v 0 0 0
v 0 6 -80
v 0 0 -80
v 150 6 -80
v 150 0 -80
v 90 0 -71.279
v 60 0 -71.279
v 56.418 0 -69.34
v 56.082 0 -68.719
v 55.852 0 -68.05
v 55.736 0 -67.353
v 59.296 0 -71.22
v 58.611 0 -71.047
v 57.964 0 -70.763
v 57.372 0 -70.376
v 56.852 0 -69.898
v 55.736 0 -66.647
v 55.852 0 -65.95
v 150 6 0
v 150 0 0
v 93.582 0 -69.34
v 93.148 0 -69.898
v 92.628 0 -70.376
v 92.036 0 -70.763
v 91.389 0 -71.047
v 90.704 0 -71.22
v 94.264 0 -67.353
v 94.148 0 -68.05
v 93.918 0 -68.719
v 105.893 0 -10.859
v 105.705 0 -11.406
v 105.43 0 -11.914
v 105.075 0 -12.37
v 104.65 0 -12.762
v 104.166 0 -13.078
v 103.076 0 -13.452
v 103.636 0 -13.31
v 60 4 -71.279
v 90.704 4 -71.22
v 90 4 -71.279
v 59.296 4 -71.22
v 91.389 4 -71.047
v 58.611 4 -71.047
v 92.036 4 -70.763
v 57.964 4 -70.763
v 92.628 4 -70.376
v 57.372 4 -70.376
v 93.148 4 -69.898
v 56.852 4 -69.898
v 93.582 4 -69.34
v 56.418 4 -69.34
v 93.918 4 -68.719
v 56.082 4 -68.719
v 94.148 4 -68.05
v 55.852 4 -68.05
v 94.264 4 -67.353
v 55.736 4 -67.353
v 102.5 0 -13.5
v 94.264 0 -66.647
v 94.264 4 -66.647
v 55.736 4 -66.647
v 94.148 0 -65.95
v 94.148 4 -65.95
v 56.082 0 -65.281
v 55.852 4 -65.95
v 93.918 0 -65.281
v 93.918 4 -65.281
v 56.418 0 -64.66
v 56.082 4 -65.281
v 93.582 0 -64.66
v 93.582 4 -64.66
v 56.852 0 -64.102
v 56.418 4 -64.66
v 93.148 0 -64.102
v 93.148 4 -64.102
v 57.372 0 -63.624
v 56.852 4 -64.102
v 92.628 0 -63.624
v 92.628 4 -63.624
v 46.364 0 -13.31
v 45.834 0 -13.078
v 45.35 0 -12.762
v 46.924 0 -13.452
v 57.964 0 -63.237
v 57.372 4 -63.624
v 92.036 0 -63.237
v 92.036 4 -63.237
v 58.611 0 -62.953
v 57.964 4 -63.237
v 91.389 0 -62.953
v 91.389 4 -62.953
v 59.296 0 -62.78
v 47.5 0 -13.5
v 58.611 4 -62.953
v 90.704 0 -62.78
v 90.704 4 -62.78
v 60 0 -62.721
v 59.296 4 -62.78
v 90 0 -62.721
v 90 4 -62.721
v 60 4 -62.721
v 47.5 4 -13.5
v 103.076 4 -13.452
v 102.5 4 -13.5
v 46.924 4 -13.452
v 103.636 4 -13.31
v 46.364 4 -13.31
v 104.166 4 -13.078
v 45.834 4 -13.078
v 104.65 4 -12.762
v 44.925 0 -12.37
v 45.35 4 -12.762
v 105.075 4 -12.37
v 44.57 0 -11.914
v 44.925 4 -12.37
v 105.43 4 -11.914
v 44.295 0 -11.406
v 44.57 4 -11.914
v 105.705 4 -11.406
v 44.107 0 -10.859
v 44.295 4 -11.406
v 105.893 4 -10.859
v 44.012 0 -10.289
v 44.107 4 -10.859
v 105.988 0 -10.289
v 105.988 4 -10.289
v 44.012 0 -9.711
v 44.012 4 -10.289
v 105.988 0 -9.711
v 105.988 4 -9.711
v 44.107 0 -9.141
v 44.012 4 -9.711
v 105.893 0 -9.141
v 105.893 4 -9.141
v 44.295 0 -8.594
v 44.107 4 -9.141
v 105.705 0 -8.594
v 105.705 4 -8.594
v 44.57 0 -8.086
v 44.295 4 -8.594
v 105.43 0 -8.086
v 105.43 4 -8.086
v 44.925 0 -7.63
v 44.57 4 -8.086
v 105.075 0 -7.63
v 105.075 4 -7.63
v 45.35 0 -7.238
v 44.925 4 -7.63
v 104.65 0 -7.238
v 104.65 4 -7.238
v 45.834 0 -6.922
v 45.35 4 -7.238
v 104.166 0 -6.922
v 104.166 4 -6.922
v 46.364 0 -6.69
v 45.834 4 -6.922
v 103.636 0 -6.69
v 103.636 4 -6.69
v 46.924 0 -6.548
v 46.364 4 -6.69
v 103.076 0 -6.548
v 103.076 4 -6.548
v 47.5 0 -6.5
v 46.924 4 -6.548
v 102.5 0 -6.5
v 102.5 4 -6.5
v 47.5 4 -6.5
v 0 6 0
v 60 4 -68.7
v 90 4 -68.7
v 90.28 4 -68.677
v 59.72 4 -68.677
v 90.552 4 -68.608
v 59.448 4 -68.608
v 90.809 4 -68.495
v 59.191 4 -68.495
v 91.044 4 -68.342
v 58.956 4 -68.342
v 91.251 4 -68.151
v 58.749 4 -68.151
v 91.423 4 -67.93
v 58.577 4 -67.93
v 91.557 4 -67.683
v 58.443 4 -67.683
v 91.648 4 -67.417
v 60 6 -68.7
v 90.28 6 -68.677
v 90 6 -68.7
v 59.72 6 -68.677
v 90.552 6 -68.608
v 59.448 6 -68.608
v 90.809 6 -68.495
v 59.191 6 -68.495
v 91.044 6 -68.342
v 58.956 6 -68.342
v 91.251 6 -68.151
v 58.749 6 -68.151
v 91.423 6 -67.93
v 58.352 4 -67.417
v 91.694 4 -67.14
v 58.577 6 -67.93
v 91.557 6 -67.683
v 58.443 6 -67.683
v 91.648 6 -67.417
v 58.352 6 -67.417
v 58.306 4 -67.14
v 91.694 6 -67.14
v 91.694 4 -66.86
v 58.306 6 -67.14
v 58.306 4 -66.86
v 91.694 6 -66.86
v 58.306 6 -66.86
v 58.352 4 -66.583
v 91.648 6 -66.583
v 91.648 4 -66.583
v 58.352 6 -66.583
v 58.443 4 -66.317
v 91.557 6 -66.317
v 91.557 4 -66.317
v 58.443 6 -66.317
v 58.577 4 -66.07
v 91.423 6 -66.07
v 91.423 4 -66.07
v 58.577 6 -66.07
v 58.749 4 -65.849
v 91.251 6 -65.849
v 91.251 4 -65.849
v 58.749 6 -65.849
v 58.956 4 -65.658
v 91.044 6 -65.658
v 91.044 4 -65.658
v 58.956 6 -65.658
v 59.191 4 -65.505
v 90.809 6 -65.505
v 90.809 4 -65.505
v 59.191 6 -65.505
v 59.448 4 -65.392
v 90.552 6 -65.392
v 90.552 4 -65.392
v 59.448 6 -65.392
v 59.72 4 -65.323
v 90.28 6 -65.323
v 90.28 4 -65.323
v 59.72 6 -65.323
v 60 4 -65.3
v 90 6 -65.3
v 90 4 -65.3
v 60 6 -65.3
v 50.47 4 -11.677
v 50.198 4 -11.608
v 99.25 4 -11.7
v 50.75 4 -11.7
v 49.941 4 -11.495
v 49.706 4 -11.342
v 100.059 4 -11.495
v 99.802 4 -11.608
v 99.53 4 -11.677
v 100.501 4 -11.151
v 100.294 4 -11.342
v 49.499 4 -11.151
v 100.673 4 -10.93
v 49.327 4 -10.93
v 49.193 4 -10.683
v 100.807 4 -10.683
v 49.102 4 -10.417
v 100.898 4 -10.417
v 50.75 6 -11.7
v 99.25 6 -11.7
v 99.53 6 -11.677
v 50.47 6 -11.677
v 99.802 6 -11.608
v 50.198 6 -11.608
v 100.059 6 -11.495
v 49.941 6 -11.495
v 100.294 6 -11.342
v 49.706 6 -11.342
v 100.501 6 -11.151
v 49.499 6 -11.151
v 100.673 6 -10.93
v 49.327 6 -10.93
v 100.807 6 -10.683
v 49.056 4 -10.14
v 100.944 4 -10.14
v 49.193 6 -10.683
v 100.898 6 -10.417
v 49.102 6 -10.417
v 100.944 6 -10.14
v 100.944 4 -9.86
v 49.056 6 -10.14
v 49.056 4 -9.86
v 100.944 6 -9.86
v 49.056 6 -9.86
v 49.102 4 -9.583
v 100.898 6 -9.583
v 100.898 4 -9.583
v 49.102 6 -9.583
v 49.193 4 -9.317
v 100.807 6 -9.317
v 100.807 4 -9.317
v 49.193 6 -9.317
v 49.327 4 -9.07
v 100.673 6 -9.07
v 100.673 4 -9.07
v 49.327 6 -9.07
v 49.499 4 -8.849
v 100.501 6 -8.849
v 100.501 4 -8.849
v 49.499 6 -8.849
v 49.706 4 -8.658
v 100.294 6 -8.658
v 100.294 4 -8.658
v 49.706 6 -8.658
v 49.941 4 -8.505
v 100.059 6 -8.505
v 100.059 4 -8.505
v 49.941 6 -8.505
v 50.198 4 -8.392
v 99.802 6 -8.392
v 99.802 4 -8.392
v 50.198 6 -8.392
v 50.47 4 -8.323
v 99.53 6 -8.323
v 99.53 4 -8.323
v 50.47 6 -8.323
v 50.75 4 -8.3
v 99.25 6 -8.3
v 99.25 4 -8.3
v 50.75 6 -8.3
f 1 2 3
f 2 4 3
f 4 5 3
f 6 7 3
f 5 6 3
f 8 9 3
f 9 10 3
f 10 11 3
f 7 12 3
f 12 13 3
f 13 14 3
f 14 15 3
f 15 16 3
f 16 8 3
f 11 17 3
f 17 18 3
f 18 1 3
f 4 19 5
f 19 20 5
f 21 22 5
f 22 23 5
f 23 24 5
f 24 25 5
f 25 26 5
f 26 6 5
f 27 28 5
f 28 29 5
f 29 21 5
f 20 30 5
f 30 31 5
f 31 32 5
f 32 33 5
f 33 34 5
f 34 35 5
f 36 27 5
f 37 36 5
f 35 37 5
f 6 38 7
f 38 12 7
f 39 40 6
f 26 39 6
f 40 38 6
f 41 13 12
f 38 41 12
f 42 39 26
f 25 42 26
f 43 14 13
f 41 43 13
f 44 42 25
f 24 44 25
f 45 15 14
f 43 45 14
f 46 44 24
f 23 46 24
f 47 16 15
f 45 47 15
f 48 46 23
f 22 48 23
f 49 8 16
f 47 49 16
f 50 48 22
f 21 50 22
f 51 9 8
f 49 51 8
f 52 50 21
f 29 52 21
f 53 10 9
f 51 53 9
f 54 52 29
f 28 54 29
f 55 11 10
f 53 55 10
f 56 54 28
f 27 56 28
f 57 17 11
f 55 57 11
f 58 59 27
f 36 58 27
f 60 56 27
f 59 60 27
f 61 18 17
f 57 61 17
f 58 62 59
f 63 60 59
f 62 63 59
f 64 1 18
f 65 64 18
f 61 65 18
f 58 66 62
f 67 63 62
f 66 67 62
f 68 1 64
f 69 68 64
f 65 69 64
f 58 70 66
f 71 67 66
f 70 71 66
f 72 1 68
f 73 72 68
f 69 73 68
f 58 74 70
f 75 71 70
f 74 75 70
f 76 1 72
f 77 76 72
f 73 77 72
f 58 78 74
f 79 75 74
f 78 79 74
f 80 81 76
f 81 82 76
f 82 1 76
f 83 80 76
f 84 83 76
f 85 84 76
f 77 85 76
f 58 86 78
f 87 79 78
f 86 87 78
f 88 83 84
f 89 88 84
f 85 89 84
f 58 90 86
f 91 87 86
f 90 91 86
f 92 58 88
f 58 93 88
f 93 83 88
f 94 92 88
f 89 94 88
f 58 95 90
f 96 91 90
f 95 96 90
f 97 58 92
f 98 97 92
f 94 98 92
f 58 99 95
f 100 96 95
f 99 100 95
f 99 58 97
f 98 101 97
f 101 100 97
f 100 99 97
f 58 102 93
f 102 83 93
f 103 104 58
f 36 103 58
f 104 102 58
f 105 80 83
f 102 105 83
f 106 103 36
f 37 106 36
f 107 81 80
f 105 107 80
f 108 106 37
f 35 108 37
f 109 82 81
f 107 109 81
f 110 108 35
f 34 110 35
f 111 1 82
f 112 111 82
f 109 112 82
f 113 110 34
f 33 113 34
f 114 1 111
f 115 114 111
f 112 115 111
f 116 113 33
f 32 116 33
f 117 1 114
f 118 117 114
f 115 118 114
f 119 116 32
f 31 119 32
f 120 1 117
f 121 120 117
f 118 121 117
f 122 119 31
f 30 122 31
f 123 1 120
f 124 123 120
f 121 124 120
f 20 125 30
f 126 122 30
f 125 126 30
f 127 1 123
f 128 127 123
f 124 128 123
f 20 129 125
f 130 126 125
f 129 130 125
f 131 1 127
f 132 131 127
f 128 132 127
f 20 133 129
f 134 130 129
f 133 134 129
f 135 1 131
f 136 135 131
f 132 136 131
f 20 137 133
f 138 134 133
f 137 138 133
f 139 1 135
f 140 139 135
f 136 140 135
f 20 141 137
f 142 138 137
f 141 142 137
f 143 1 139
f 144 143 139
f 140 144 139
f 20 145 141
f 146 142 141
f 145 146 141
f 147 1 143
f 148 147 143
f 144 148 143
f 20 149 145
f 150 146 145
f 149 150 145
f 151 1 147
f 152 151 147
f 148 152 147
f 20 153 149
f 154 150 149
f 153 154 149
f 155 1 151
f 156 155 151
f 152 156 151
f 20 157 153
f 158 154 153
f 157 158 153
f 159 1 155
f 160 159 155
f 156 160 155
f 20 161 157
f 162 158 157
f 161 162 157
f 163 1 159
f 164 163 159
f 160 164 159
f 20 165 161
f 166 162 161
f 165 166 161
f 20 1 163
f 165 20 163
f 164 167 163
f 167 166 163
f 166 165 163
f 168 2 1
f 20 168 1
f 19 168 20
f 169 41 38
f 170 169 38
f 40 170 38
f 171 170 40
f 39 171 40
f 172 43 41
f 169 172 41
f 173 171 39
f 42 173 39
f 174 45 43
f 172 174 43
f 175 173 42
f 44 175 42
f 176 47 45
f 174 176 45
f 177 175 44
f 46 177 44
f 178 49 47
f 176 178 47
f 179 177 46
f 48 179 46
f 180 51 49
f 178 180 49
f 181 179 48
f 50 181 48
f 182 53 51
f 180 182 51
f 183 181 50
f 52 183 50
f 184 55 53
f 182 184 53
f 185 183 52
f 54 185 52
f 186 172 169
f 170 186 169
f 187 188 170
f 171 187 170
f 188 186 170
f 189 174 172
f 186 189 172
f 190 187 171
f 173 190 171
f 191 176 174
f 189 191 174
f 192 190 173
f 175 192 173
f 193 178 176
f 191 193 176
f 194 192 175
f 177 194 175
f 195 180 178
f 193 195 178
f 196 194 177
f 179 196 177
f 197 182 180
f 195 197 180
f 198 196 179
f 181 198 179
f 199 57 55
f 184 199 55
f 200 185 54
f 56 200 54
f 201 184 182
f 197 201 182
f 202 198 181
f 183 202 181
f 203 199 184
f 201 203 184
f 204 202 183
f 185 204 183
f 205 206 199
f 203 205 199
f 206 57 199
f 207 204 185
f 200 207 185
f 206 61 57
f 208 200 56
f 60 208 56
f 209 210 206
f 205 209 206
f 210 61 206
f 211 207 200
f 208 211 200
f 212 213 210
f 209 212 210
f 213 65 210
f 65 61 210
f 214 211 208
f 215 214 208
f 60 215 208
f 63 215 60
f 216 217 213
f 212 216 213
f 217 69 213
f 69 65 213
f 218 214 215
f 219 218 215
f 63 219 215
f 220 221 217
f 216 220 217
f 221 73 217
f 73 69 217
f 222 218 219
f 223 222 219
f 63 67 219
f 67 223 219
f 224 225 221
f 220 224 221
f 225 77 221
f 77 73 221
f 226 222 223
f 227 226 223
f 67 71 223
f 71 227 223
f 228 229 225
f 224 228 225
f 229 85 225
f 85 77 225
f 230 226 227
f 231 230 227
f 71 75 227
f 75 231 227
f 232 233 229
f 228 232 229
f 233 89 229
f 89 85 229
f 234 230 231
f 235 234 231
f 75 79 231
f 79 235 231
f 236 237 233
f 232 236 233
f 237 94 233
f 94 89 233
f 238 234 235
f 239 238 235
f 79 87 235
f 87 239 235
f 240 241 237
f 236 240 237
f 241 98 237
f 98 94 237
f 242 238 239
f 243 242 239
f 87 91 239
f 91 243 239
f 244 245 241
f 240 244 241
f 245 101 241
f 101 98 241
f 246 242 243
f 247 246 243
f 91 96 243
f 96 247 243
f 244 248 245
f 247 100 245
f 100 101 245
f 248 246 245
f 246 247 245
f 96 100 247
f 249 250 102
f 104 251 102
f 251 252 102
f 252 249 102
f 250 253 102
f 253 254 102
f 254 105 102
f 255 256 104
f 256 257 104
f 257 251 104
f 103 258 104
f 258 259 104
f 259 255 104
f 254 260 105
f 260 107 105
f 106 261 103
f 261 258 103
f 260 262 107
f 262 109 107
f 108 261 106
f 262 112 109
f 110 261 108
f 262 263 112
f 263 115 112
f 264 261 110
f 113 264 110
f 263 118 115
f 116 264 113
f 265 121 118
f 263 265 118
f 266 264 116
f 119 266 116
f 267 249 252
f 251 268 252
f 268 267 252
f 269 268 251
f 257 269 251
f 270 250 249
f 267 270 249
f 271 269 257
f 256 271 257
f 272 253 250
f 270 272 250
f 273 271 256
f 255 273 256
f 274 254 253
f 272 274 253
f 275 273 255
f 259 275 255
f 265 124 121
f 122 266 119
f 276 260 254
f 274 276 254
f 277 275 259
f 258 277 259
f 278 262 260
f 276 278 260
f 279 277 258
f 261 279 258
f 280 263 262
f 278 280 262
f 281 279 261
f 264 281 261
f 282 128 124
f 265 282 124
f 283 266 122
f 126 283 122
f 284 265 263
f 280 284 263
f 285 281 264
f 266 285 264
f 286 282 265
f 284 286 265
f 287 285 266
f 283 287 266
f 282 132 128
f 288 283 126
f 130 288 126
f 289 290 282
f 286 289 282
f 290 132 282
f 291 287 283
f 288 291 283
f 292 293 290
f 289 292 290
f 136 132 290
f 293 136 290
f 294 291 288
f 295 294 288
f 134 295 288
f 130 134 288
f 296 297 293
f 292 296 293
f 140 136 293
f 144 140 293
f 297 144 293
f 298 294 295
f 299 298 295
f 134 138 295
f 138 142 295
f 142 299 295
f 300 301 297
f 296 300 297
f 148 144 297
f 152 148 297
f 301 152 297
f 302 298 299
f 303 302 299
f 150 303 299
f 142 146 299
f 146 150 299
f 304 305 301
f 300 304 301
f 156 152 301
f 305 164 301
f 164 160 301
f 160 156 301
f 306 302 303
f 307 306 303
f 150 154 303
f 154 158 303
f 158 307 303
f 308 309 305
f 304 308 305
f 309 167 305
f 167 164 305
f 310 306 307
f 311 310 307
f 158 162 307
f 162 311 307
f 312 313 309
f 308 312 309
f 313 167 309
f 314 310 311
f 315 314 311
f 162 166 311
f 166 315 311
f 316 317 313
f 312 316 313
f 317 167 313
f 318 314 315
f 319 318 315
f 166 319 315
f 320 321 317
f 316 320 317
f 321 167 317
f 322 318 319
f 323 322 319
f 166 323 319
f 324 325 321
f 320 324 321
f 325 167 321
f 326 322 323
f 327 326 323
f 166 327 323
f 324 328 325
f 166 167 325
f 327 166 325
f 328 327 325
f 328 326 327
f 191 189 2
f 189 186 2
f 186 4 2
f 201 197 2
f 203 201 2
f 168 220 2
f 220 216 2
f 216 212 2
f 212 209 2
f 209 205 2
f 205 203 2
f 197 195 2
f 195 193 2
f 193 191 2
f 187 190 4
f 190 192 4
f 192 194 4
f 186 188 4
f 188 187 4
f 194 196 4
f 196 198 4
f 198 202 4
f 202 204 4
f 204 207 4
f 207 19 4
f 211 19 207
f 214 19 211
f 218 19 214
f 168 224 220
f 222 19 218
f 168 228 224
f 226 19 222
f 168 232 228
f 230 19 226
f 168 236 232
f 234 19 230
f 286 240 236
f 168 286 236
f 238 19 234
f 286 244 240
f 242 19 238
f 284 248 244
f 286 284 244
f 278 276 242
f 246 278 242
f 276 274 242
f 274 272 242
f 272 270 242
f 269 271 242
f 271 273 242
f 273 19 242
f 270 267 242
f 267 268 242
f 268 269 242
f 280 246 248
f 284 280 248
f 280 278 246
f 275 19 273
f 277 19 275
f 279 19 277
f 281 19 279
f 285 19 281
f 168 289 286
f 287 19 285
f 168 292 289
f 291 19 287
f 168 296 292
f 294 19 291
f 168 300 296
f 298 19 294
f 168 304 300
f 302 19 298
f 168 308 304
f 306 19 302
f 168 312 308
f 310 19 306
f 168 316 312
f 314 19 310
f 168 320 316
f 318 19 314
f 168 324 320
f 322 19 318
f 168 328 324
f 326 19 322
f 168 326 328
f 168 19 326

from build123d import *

# Parameters (mm, degrees)
ESQUISSE2_W                                        = 150
ESQUISSE2_H                                        = 80
BOSS_EXTRU_1_DEPTH                                 = 6
CHAMBRAGE_POUR_VIS_T_TE_HEXAGONALE_M31_D           = 3.4
CHAMBRAGE_POUR_VIS_T_TE_HEXAGONALE_M31_DEPTH       = 15
CHAMBRAGE_POUR_VIS_T_TE_HEXAGONALE_M31_CBORE_D     = 6.5
CHAMBRAGE_POUR_VIS_T_TE_HEXAGONALE_M31_CBORE_DEPTH = 3.4
CHAMBRAGE_POUR_VIS_T_TE_HEXAGONALE_M31_TIP         = 1.021463052
ENL_V_MAT_EXTRU_2_DEPTH                            = 4
ENL_V_MAT_EXTRU_3_DEPTH                            = 171.1058494
ENL_V_MAT_EXTRU_4_DEPTH                            = 4
ENL_V_START                                        = -4
ENL_V_MAT_EXTRU_5_DEPTH                            = 4


with BuildPart() as part:
    # Esquisse2 → Boss.-Extru.1 (new body)
    with BuildSketch(Plane(origin=(0, 0, 0), x_dir=(1, 0, 0), z_dir=(0, 1, 0))):
        with Locations((75, 40)):
            Rectangle(ESQUISSE2_W, ESQUISSE2_H)
    extrude(amount=BOSS_EXTRU_1_DEPTH)

    # Chambrage pour vis à tête hexagonale M31
    with Locations(Plane(origin=(90, 0, -67), x_dir=(0, 0, -1), z_dir=(0, -1, 0))):
        with Locations((0, 0), (0, -30), (-57, -39.25), (-57, 9.25)):
            CounterBoreHole(CHAMBRAGE_POUR_VIS_T_TE_HEXAGONALE_M31_D / 2, CHAMBRAGE_POUR_VIS_T_TE_HEXAGONALE_M31_CBORE_D / 2, CHAMBRAGE_POUR_VIS_T_TE_HEXAGONALE_M31_CBORE_DEPTH, depth=CHAMBRAGE_POUR_VIS_T_TE_HEXAGONALE_M31_DEPTH)
            with Locations((0, 0, -(CHAMBRAGE_POUR_VIS_T_TE_HEXAGONALE_M31_DEPTH + CHAMBRAGE_POUR_VIS_T_TE_HEXAGONALE_M31_TIP / 2))):  # 118° drill point
                Cone(0, CHAMBRAGE_POUR_VIS_T_TE_HEXAGONALE_M31_D / 2, CHAMBRAGE_POUR_VIS_T_TE_HEXAGONALE_M31_TIP, mode=Mode.SUBTRACT)

    # Esquisse6 → Enlèv. mat.-Extru.2 (cut)
    with BuildSketch(Plane.XZ):
        with BuildLine():
            Line((90, -71.278666631), (60, -71.278666631))
            ThreePointArc((60, -71.278666631), (55.721333369, -67), (60, -62.721333369))
            Line((60, -62.721333369), (90, -62.721333369))
            ThreePointArc((90, -62.721333369), (94.278666631, -67), (90, -71.278666631))
        make_face()
    extrude(amount=-ENL_V_MAT_EXTRU_2_DEPTH, mode=Mode.SUBTRACT)

    # Esquisse7 → Enlèv. mat.-Extru.3 (cut, through all)
    with BuildSketch(Plane.XZ):
        with BuildLine():
            Line((90, -68.7), (60, -68.7))
            ThreePointArc((60, -68.7), (58.3, -67), (60, -65.3))
            Line((60, -65.3), (90, -65.3))
            ThreePointArc((90, -65.3), (91.7, -67), (90, -68.7))
        make_face()
    extrude(amount=-ENL_V_MAT_EXTRU_3_DEPTH, mode=Mode.SUBTRACT)

    # Esquisse9 → Enlèv. mat.-Extru.4 (cut)
    with BuildSketch(Plane(origin=(0, 0, 0), x_dir=(-1, 0, 0), z_dir=(0, -1, 0))):
        with BuildLine():
            Line((-102.5, 13.5), (-47.5, 13.5))
            ThreePointArc((-47.5, 13.5), (-44, 10), (-47.5, 6.5))
            Line((-47.5, 6.5), (-102.5, 6.5))
            ThreePointArc((-102.5, 6.5), (-106, 10), (-102.5, 13.5))
        make_face()
    extrude(amount=-ENL_V_MAT_EXTRU_4_DEPTH, mode=Mode.SUBTRACT)

    # Esquisse10 → Enlèv. mat.-Extru.5 (cut)
    with BuildSketch(Plane(origin=(0, 4, 0), x_dir=(-1, 0, 0), z_dir=(0, -1, 0)).offset(ENL_V_START)):
        with BuildLine():
            Line((-99.25, 11.7), (-50.75, 11.7))
            ThreePointArc((-50.75, 11.7), (-49.05, 10), (-50.75, 8.3))
            Line((-50.75, 8.3), (-99.25, 8.3))
            ThreePointArc((-99.25, 8.3), (-100.95, 10), (-99.25, 11.7))
        make_face()
    extrude(amount=ENL_V_MAT_EXTRU_5_DEPTH, mode=Mode.SUBTRACT)


solid = part.part
